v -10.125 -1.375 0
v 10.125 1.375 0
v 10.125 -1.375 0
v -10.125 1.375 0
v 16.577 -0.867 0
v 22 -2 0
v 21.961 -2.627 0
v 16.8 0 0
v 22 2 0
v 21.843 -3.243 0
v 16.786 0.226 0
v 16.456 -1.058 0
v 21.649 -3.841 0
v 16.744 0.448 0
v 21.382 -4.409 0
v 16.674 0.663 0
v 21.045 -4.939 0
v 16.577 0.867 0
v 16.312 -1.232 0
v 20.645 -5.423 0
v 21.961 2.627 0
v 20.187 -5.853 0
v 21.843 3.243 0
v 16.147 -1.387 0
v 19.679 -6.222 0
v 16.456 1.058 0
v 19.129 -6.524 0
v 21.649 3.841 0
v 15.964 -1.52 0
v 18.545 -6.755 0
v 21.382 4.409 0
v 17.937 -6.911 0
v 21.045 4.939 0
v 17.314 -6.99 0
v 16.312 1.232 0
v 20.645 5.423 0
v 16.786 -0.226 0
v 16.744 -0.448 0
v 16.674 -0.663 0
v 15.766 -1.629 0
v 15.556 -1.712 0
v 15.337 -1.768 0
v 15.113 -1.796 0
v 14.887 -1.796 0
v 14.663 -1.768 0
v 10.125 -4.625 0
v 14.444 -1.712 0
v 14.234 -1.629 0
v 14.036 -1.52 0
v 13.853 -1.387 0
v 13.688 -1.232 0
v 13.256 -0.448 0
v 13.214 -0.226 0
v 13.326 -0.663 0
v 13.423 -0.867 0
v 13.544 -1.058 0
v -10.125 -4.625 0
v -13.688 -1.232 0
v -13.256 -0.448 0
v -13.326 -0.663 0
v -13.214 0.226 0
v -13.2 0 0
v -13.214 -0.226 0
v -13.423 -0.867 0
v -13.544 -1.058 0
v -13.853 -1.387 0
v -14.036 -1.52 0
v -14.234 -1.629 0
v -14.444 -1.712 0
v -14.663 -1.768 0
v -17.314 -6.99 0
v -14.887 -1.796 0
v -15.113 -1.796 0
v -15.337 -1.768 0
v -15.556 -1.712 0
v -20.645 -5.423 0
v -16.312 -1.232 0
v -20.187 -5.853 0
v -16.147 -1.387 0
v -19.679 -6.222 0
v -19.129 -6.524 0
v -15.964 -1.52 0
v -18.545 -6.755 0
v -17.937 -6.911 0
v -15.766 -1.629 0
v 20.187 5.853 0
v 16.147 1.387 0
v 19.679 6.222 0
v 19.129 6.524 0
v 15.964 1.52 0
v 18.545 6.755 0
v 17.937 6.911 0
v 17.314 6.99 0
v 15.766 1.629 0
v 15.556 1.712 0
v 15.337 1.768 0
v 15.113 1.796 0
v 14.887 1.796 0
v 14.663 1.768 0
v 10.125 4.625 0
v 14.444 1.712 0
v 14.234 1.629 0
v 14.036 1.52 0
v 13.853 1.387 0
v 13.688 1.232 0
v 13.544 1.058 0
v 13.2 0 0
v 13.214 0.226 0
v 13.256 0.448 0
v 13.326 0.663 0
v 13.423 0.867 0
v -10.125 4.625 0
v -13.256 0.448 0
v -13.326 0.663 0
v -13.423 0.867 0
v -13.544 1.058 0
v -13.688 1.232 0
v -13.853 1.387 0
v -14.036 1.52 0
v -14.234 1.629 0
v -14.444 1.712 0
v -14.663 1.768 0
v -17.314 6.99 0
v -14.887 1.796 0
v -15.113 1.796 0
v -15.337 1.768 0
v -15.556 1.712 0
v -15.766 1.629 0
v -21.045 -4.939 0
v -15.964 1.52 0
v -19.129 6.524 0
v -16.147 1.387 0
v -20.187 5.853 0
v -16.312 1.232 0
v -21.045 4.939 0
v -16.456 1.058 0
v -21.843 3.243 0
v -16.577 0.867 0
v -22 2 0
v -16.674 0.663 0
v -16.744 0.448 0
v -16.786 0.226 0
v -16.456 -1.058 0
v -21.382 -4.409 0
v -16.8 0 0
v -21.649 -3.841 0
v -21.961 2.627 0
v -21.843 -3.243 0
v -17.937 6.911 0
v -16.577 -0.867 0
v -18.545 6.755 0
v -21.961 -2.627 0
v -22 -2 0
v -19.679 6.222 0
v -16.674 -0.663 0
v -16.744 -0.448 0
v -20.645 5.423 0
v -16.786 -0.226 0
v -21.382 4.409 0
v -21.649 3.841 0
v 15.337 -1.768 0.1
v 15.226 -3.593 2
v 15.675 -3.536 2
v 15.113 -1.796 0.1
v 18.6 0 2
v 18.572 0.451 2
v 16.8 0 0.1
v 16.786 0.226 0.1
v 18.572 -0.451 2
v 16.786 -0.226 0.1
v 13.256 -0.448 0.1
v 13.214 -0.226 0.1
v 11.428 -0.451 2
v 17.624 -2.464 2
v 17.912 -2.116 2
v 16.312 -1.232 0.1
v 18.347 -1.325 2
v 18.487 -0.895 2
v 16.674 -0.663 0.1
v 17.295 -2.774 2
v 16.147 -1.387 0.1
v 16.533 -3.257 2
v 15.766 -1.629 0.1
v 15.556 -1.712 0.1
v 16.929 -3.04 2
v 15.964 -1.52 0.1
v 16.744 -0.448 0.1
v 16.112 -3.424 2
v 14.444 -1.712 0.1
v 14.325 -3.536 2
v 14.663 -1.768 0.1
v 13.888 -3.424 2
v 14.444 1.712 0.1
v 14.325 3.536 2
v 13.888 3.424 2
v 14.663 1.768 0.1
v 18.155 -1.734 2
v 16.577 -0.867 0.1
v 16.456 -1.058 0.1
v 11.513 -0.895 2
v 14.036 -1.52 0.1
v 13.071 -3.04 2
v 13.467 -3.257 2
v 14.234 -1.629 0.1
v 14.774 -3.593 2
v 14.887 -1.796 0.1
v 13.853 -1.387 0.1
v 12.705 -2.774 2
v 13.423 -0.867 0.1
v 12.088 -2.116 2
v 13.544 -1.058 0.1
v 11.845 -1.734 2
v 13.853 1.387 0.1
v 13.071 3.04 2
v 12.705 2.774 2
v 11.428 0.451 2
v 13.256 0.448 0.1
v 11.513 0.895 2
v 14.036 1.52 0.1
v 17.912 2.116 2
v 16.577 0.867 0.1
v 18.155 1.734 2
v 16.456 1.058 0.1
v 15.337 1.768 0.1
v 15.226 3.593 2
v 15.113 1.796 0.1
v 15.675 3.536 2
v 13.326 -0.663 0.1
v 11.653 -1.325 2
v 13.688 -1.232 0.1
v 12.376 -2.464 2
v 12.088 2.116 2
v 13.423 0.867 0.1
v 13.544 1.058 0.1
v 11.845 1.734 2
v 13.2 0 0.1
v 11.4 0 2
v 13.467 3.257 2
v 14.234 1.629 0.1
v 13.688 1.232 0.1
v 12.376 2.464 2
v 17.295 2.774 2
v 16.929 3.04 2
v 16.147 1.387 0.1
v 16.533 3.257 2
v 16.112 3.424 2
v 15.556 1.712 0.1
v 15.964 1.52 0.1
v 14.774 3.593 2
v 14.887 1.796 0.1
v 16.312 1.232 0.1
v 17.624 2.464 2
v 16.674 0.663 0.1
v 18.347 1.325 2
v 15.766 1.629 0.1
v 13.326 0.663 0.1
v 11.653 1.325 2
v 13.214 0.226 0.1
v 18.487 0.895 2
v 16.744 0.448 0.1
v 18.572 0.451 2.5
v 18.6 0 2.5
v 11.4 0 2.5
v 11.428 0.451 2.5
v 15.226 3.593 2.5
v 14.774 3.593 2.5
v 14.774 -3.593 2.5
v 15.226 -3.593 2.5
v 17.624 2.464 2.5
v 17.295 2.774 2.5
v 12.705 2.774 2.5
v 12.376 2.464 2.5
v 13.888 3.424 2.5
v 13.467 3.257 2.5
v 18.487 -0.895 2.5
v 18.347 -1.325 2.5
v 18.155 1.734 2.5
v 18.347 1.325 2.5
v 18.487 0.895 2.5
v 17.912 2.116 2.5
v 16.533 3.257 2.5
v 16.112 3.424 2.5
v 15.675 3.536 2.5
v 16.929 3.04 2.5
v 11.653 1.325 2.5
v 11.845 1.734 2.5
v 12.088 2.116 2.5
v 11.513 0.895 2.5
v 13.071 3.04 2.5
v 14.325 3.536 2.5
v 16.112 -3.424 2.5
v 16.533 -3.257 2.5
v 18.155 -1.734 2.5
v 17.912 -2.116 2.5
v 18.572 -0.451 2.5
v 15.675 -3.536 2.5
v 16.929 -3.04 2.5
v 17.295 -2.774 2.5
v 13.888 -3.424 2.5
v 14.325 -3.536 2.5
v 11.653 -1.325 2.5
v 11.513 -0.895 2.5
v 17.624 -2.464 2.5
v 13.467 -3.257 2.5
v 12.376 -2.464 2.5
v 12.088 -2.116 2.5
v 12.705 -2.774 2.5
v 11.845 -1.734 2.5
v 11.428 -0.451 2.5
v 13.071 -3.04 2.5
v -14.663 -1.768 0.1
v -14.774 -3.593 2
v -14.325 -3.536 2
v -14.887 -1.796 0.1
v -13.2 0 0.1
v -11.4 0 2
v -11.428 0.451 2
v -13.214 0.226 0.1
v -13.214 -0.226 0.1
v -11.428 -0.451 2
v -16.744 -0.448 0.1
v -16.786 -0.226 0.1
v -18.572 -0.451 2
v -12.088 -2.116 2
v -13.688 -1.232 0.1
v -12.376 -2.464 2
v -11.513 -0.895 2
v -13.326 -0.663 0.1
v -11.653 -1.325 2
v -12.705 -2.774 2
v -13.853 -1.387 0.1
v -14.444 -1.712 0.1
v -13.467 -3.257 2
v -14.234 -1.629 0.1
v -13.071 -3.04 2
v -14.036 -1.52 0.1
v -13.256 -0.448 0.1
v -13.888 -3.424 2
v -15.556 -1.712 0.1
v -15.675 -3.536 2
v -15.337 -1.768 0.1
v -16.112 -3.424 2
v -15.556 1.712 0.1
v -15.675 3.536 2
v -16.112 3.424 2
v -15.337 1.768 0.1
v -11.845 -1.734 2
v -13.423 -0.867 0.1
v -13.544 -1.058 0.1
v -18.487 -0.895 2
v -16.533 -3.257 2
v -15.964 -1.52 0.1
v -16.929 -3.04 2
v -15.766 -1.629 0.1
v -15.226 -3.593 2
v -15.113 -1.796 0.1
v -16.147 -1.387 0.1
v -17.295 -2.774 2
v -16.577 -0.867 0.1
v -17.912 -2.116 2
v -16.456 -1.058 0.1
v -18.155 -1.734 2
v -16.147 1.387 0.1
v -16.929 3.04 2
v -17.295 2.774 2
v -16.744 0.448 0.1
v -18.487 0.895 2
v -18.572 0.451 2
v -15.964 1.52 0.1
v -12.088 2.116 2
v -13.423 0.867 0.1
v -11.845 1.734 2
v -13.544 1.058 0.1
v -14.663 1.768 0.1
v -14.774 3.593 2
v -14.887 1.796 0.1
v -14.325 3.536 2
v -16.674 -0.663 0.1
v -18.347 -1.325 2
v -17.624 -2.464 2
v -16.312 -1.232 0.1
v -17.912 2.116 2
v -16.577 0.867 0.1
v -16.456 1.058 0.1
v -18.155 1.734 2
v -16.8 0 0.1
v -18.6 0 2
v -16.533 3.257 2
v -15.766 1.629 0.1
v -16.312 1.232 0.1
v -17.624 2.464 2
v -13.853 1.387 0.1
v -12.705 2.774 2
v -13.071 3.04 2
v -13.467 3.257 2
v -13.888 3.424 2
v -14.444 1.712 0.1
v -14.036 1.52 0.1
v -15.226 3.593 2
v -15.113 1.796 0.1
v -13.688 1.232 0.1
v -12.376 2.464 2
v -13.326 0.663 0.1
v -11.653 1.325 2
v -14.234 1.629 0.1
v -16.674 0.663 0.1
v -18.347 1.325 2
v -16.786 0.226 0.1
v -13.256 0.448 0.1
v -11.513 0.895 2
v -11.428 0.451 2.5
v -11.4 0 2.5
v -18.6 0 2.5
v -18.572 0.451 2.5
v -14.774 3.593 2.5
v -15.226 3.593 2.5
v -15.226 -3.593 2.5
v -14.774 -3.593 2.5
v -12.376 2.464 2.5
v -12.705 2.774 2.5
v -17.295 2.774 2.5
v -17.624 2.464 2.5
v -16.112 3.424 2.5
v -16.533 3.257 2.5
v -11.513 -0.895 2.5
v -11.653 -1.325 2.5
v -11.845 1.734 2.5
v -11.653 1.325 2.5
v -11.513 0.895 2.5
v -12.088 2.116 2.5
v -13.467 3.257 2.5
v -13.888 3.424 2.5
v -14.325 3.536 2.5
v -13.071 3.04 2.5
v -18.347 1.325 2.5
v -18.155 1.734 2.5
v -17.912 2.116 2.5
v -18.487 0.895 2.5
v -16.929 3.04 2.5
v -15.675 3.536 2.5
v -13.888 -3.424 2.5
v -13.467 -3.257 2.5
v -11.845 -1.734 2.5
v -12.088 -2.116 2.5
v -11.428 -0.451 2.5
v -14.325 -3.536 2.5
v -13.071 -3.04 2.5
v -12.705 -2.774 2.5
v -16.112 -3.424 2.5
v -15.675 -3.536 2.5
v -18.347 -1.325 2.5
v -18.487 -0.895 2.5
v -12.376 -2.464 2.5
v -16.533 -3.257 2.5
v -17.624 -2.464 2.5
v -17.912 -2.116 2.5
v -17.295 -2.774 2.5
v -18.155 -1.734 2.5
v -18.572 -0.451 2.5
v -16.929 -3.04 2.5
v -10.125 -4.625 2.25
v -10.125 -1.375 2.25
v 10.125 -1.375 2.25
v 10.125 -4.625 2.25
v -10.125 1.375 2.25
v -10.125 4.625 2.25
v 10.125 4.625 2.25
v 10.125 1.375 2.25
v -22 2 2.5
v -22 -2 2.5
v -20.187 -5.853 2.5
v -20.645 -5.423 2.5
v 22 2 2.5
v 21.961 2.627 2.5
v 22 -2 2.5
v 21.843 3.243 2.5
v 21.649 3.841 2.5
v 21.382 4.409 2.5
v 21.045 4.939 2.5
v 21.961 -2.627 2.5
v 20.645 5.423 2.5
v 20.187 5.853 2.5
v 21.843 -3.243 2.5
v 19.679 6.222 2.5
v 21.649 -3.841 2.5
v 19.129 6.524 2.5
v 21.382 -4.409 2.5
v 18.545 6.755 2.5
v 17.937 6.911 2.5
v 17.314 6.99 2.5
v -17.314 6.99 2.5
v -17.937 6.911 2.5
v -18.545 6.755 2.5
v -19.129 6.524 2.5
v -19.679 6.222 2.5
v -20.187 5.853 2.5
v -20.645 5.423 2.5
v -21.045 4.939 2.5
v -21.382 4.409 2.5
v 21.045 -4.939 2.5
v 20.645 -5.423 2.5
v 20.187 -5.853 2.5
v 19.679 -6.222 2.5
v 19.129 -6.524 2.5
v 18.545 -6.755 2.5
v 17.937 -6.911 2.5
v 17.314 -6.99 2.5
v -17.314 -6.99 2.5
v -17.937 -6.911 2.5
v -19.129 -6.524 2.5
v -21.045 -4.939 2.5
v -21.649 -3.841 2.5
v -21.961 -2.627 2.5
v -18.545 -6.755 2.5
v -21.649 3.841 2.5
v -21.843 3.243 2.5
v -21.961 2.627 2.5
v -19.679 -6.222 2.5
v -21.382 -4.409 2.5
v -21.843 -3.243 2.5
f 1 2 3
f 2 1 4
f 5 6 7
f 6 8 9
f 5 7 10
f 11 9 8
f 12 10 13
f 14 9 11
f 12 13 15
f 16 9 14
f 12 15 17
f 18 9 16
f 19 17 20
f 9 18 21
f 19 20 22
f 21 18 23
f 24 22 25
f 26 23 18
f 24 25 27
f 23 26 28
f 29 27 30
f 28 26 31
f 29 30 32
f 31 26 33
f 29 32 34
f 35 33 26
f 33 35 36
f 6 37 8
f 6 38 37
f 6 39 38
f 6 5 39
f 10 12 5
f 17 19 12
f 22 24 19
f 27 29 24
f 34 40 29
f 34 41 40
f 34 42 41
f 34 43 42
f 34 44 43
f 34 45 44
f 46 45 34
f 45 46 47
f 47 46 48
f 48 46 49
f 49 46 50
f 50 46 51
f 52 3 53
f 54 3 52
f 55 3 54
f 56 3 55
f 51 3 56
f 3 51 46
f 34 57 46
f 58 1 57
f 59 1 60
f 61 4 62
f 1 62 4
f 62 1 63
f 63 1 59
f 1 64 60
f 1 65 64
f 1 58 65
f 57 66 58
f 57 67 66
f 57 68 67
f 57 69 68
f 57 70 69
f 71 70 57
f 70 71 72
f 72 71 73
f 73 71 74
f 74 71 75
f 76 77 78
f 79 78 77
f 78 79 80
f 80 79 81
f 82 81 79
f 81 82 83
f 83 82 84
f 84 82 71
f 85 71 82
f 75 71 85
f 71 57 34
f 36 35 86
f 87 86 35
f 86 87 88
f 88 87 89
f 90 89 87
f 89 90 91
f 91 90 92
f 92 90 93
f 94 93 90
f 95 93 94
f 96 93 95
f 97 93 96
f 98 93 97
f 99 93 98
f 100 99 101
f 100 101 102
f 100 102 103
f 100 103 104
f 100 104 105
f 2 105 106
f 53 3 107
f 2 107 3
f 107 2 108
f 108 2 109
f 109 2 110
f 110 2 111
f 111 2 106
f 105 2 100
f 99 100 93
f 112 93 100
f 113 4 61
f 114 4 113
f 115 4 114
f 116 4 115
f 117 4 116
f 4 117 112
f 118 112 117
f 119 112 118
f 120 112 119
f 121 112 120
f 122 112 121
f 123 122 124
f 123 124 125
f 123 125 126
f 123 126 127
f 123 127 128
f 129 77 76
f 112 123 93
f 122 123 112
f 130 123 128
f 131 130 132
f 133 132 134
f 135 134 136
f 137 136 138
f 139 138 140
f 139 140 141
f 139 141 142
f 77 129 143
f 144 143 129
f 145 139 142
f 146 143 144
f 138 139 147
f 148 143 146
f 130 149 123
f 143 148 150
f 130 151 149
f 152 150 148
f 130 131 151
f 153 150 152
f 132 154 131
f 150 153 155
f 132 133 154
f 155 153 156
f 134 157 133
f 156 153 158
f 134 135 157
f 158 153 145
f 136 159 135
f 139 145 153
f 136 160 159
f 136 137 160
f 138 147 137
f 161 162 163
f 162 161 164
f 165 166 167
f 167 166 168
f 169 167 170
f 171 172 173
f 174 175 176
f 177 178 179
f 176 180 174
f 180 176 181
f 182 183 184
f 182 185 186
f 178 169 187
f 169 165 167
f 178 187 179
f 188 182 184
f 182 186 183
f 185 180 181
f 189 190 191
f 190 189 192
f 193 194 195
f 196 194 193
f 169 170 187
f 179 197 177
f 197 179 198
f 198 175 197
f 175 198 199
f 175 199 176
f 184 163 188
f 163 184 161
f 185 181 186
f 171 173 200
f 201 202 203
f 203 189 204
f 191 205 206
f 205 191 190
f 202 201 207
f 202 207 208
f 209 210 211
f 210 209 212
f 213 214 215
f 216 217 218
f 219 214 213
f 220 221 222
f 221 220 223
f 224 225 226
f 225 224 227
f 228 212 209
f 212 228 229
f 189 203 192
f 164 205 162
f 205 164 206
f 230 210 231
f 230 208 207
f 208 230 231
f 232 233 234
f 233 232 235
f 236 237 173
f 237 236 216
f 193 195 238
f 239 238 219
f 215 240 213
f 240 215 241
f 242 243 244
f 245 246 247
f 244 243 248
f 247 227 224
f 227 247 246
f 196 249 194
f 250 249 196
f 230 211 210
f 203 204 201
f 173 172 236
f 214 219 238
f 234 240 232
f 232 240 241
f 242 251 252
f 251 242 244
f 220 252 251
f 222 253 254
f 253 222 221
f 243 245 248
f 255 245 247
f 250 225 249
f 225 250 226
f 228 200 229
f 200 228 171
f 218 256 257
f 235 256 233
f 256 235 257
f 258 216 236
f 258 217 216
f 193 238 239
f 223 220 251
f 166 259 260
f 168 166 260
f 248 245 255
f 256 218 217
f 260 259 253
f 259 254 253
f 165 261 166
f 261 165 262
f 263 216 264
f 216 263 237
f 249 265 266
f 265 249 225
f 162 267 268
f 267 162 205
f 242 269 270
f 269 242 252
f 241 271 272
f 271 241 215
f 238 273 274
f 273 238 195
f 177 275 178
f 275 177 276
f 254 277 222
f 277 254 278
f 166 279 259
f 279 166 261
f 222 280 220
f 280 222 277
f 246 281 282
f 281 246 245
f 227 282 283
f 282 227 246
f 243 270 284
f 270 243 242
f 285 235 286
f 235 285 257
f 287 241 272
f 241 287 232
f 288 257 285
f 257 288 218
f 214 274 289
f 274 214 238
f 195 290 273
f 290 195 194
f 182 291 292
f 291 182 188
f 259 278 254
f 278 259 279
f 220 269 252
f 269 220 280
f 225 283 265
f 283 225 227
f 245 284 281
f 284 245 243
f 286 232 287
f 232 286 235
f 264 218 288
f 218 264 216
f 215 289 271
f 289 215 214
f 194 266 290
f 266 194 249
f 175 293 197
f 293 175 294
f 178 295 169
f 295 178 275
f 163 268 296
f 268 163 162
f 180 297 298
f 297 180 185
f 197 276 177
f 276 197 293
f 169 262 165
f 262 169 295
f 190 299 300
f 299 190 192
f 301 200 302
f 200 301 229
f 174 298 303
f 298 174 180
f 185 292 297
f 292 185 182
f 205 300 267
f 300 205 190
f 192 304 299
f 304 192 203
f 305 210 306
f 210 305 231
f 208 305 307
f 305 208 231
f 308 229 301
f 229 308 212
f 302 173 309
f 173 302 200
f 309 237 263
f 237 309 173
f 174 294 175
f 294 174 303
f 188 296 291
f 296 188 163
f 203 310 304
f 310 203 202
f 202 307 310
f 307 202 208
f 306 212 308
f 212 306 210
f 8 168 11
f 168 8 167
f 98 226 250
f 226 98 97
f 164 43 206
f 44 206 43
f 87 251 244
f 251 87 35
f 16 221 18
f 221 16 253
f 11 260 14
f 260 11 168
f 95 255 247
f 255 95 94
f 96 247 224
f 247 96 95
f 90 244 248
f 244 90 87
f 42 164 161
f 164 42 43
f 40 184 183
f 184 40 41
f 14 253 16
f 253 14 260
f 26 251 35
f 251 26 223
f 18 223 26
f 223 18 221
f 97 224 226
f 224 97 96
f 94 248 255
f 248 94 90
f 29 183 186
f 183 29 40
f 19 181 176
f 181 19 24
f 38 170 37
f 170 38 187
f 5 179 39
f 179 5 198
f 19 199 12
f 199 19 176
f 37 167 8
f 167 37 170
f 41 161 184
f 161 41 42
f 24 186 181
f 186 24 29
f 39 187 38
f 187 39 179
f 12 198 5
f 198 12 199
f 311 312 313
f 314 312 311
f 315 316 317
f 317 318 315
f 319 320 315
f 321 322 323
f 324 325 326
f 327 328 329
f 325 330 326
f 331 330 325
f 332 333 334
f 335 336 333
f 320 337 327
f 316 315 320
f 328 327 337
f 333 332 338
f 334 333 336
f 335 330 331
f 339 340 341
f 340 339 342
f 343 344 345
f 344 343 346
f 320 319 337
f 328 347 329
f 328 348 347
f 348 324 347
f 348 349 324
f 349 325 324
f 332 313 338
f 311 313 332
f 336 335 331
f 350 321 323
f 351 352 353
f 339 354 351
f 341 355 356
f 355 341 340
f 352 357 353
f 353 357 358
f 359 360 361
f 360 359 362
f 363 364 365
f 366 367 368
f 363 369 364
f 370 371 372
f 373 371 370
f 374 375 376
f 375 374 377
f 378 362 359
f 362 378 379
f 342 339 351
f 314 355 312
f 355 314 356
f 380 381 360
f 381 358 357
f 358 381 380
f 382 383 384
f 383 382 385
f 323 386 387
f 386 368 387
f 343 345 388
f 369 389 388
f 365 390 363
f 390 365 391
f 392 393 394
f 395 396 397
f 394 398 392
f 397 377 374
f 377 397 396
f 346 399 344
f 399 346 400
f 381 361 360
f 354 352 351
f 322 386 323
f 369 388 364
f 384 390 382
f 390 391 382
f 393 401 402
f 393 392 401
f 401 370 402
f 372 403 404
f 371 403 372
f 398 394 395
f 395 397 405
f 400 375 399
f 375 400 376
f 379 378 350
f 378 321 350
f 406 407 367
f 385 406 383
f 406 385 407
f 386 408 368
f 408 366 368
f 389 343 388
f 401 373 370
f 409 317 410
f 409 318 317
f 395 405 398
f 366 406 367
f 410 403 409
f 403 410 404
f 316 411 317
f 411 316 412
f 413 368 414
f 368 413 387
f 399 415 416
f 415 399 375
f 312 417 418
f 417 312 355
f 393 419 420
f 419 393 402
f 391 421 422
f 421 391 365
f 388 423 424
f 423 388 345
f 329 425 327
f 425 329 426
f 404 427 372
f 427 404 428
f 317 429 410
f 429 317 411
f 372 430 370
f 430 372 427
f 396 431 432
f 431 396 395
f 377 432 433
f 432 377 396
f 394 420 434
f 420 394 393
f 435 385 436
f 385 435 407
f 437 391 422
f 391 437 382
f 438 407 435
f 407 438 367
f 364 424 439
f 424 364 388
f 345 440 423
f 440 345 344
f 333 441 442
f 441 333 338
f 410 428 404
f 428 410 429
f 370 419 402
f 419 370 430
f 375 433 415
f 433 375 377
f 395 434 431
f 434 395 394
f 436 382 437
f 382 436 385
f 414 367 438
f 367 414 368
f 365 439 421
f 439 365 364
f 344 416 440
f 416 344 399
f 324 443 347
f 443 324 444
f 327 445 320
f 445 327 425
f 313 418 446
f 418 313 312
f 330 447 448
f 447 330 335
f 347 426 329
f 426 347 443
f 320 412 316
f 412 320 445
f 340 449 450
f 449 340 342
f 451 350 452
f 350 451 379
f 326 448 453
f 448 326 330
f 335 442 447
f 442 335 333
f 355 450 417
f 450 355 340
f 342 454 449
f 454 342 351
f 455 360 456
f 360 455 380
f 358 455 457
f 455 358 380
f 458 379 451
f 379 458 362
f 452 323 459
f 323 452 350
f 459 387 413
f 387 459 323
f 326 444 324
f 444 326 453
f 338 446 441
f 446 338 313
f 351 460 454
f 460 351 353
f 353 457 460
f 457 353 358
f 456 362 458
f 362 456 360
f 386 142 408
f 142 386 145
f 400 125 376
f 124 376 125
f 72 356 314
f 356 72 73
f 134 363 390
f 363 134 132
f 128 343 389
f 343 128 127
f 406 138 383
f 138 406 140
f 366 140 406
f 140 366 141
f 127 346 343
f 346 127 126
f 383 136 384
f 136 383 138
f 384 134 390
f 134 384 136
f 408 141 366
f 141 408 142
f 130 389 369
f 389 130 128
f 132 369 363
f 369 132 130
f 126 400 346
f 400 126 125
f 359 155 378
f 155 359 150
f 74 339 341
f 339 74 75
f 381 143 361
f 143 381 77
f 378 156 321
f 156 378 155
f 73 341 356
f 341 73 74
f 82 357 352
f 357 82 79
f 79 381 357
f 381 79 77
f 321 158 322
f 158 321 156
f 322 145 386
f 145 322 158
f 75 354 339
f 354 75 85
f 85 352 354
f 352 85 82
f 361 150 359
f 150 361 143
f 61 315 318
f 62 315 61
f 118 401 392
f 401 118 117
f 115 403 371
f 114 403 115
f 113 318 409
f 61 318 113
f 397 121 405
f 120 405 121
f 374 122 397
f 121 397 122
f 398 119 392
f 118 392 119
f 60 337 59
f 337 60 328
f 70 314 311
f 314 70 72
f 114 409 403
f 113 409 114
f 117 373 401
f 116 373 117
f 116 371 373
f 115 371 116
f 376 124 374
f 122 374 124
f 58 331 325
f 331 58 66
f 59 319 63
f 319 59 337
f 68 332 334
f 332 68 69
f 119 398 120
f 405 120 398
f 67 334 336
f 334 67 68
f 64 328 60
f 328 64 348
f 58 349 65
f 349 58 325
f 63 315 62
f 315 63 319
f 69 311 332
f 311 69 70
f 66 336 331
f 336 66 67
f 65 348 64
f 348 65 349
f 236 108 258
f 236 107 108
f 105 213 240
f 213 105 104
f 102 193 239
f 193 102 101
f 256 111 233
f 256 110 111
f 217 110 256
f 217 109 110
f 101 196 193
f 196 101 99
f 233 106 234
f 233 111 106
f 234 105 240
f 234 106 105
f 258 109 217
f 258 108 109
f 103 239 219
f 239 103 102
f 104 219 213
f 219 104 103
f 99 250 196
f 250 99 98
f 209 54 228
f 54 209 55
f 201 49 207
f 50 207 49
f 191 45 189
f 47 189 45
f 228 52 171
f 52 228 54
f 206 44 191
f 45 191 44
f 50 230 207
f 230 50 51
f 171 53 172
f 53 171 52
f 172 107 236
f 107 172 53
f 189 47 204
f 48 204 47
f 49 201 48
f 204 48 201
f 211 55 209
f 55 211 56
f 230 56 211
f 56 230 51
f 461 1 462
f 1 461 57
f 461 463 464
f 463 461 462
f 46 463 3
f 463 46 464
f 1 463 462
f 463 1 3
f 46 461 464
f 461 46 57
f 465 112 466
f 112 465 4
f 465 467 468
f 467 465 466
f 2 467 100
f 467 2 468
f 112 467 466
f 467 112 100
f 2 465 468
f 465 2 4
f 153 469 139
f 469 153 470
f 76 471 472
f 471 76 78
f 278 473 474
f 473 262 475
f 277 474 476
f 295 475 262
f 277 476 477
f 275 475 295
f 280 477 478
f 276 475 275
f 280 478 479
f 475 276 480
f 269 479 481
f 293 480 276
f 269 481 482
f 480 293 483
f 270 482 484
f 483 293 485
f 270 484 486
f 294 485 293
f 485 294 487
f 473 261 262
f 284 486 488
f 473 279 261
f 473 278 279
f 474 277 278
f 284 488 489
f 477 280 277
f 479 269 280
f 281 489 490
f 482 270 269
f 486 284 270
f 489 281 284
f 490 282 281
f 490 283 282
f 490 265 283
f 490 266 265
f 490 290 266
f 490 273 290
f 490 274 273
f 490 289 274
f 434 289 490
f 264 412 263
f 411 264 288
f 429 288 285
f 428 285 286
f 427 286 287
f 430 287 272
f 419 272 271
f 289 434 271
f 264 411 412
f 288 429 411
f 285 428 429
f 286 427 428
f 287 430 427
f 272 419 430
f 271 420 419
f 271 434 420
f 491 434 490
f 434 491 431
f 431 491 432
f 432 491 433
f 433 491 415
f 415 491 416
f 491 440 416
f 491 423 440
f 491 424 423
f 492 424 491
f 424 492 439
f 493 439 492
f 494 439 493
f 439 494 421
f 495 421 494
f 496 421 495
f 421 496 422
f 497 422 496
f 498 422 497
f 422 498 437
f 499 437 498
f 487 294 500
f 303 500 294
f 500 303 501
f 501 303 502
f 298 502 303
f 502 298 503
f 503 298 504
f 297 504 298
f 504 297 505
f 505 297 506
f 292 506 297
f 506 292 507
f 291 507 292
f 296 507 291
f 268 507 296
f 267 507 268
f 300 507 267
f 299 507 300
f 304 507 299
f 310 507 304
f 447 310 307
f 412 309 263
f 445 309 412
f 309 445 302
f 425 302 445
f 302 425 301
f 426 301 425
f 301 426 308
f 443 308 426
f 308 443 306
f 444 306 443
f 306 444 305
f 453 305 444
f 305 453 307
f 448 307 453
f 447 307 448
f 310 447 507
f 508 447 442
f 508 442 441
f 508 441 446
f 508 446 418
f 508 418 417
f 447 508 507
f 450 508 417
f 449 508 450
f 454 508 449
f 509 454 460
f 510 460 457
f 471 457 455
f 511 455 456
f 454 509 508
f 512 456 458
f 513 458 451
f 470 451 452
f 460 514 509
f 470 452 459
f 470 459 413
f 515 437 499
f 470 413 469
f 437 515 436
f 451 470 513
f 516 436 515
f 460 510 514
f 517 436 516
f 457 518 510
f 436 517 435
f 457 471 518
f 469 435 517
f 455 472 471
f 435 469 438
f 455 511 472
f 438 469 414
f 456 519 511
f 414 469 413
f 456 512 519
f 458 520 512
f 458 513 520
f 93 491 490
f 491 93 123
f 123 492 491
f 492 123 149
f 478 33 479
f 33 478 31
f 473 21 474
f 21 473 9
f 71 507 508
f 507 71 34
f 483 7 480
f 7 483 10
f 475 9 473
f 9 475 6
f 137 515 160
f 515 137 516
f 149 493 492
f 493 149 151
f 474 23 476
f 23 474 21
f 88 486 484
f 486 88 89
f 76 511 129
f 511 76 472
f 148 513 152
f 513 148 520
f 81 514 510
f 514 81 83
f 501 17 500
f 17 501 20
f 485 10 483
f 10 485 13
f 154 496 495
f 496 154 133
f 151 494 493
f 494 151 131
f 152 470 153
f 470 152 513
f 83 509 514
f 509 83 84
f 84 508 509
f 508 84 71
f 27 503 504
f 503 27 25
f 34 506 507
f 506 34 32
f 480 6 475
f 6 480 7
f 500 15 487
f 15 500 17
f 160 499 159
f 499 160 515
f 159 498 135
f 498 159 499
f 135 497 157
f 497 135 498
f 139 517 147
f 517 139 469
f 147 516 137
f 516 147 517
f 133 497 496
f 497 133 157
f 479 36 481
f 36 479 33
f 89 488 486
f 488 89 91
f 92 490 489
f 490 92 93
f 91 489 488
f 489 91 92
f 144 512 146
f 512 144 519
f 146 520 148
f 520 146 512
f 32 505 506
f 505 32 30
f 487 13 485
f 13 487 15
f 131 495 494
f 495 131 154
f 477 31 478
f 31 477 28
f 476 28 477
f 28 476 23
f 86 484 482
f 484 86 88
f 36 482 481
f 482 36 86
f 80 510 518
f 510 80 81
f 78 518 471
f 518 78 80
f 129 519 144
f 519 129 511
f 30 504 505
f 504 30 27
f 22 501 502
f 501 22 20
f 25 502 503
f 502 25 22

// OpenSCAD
$fn = 50;


difference() {
	union() {
		hull() {
			translate(v = [-17.0000000000, 2.0000000000, 0]) {
				cylinder(h = 2.5000000000, r = 5);
			}
			translate(v = [17.0000000000, 2.0000000000, 0]) {
				cylinder(h = 2.5000000000, r = 5);
			}
			translate(v = [-17.0000000000, -2.0000000000, 0]) {
				cylinder(h = 2.5000000000, r = 5);
			}
			translate(v = [17.0000000000, -2.0000000000, 0]) {
				cylinder(h = 2.5000000000, r = 5);
			}
		}
	}
	union() {
		translate(v = [15.0000000000, 0, 2.0000000000]) {
			rotate(a = [0, 0, 0]) {
				difference() {
					union() {
						translate(v = [0, 0, -2.0000000000]) {
							cylinder(h = 2.0000000000, r = 1.5000000000);
						}
						translate(v = [0, 0, -1.9000000000]) {
							cylinder(h = 1.9000000000, r1 = 1.8000000000, r2 = 3.6000000000);
						}
						cylinder(h = 250, r = 3.6000000000);
						translate(v = [0, 0, -2.0000000000]) {
							cylinder(h = 2.0000000000, r = 1.8000000000);
						}
						translate(v = [0, 0, -2.0000000000]) {
							cylinder(h = 2.0000000000, r = 1.5000000000);
						}
					}
					union();
				}
			}
		}
		translate(v = [-15.0000000000, 0, 2.0000000000]) {
			rotate(a = [0, 0, 0]) {
				difference() {
					union() {
						translate(v = [0, 0, -2.0000000000]) {
							cylinder(h = 2.0000000000, r = 1.5000000000);
						}
						translate(v = [0, 0, -1.9000000000]) {
							cylinder(h = 1.9000000000, r1 = 1.8000000000, r2 = 3.6000000000);
						}
						cylinder(h = 250, r = 3.6000000000);
						translate(v = [0, 0, -2.0000000000]) {
							cylinder(h = 2.0000000000, r = 1.8000000000);
						}
						translate(v = [0, 0, -2.0000000000]) {
							cylinder(h = 2.0000000000, r = 1.5000000000);
						}
					}
					union();
				}
			}
		}
		translate(v = [-15.0000000000, 0.0000000000, 0]) {
			cylinder(h = 2.5000000000, r = 1.8000000000);
		}
		translate(v = [15.0000000000, 0.0000000000, 0]) {
			cylinder(h = 2.5000000000, r = 1.8000000000);
		}
		translate(v = [-15.0000000000, 0.0000000000, 0]) {
			cylinder(h = 2.5000000000, r = 1.8000000000);
		}
		translate(v = [15.0000000000, 0.0000000000, 0]) {
			cylinder(h = 2.5000000000, r = 1.8000000000);
		}
		translate(v = [-15.0000000000, 0.0000000000, 0]) {
			cylinder(h = 2.5000000000, r = 1.8000000000);
		}
		translate(v = [15.0000000000, 0.0000000000, 0]) {
			cylinder(h = 2.5000000000, r = 1.8000000000);
		}
		translate(v = [-15.0000000000, 0.0000000000, 0]) {
			cylinder(h = 2.5000000000, r = 1.8000000000);
		}
		translate(v = [15.0000000000, 0.0000000000, 0]) {
			cylinder(h = 2.5000000000, r = 1.8000000000);
		}
		#translate(v = [-10.1250000000, -4.6250000000, 0]) {
			cube(size = [20.2500000000, 3.2500000000, 2.2500000000]);
		}
		#translate(v = [-10.1250000000, 1.3750000000, 0]) {
			cube(size = [20.2500000000, 3.2500000000, 2.2500000000]);
		}
	}
}
